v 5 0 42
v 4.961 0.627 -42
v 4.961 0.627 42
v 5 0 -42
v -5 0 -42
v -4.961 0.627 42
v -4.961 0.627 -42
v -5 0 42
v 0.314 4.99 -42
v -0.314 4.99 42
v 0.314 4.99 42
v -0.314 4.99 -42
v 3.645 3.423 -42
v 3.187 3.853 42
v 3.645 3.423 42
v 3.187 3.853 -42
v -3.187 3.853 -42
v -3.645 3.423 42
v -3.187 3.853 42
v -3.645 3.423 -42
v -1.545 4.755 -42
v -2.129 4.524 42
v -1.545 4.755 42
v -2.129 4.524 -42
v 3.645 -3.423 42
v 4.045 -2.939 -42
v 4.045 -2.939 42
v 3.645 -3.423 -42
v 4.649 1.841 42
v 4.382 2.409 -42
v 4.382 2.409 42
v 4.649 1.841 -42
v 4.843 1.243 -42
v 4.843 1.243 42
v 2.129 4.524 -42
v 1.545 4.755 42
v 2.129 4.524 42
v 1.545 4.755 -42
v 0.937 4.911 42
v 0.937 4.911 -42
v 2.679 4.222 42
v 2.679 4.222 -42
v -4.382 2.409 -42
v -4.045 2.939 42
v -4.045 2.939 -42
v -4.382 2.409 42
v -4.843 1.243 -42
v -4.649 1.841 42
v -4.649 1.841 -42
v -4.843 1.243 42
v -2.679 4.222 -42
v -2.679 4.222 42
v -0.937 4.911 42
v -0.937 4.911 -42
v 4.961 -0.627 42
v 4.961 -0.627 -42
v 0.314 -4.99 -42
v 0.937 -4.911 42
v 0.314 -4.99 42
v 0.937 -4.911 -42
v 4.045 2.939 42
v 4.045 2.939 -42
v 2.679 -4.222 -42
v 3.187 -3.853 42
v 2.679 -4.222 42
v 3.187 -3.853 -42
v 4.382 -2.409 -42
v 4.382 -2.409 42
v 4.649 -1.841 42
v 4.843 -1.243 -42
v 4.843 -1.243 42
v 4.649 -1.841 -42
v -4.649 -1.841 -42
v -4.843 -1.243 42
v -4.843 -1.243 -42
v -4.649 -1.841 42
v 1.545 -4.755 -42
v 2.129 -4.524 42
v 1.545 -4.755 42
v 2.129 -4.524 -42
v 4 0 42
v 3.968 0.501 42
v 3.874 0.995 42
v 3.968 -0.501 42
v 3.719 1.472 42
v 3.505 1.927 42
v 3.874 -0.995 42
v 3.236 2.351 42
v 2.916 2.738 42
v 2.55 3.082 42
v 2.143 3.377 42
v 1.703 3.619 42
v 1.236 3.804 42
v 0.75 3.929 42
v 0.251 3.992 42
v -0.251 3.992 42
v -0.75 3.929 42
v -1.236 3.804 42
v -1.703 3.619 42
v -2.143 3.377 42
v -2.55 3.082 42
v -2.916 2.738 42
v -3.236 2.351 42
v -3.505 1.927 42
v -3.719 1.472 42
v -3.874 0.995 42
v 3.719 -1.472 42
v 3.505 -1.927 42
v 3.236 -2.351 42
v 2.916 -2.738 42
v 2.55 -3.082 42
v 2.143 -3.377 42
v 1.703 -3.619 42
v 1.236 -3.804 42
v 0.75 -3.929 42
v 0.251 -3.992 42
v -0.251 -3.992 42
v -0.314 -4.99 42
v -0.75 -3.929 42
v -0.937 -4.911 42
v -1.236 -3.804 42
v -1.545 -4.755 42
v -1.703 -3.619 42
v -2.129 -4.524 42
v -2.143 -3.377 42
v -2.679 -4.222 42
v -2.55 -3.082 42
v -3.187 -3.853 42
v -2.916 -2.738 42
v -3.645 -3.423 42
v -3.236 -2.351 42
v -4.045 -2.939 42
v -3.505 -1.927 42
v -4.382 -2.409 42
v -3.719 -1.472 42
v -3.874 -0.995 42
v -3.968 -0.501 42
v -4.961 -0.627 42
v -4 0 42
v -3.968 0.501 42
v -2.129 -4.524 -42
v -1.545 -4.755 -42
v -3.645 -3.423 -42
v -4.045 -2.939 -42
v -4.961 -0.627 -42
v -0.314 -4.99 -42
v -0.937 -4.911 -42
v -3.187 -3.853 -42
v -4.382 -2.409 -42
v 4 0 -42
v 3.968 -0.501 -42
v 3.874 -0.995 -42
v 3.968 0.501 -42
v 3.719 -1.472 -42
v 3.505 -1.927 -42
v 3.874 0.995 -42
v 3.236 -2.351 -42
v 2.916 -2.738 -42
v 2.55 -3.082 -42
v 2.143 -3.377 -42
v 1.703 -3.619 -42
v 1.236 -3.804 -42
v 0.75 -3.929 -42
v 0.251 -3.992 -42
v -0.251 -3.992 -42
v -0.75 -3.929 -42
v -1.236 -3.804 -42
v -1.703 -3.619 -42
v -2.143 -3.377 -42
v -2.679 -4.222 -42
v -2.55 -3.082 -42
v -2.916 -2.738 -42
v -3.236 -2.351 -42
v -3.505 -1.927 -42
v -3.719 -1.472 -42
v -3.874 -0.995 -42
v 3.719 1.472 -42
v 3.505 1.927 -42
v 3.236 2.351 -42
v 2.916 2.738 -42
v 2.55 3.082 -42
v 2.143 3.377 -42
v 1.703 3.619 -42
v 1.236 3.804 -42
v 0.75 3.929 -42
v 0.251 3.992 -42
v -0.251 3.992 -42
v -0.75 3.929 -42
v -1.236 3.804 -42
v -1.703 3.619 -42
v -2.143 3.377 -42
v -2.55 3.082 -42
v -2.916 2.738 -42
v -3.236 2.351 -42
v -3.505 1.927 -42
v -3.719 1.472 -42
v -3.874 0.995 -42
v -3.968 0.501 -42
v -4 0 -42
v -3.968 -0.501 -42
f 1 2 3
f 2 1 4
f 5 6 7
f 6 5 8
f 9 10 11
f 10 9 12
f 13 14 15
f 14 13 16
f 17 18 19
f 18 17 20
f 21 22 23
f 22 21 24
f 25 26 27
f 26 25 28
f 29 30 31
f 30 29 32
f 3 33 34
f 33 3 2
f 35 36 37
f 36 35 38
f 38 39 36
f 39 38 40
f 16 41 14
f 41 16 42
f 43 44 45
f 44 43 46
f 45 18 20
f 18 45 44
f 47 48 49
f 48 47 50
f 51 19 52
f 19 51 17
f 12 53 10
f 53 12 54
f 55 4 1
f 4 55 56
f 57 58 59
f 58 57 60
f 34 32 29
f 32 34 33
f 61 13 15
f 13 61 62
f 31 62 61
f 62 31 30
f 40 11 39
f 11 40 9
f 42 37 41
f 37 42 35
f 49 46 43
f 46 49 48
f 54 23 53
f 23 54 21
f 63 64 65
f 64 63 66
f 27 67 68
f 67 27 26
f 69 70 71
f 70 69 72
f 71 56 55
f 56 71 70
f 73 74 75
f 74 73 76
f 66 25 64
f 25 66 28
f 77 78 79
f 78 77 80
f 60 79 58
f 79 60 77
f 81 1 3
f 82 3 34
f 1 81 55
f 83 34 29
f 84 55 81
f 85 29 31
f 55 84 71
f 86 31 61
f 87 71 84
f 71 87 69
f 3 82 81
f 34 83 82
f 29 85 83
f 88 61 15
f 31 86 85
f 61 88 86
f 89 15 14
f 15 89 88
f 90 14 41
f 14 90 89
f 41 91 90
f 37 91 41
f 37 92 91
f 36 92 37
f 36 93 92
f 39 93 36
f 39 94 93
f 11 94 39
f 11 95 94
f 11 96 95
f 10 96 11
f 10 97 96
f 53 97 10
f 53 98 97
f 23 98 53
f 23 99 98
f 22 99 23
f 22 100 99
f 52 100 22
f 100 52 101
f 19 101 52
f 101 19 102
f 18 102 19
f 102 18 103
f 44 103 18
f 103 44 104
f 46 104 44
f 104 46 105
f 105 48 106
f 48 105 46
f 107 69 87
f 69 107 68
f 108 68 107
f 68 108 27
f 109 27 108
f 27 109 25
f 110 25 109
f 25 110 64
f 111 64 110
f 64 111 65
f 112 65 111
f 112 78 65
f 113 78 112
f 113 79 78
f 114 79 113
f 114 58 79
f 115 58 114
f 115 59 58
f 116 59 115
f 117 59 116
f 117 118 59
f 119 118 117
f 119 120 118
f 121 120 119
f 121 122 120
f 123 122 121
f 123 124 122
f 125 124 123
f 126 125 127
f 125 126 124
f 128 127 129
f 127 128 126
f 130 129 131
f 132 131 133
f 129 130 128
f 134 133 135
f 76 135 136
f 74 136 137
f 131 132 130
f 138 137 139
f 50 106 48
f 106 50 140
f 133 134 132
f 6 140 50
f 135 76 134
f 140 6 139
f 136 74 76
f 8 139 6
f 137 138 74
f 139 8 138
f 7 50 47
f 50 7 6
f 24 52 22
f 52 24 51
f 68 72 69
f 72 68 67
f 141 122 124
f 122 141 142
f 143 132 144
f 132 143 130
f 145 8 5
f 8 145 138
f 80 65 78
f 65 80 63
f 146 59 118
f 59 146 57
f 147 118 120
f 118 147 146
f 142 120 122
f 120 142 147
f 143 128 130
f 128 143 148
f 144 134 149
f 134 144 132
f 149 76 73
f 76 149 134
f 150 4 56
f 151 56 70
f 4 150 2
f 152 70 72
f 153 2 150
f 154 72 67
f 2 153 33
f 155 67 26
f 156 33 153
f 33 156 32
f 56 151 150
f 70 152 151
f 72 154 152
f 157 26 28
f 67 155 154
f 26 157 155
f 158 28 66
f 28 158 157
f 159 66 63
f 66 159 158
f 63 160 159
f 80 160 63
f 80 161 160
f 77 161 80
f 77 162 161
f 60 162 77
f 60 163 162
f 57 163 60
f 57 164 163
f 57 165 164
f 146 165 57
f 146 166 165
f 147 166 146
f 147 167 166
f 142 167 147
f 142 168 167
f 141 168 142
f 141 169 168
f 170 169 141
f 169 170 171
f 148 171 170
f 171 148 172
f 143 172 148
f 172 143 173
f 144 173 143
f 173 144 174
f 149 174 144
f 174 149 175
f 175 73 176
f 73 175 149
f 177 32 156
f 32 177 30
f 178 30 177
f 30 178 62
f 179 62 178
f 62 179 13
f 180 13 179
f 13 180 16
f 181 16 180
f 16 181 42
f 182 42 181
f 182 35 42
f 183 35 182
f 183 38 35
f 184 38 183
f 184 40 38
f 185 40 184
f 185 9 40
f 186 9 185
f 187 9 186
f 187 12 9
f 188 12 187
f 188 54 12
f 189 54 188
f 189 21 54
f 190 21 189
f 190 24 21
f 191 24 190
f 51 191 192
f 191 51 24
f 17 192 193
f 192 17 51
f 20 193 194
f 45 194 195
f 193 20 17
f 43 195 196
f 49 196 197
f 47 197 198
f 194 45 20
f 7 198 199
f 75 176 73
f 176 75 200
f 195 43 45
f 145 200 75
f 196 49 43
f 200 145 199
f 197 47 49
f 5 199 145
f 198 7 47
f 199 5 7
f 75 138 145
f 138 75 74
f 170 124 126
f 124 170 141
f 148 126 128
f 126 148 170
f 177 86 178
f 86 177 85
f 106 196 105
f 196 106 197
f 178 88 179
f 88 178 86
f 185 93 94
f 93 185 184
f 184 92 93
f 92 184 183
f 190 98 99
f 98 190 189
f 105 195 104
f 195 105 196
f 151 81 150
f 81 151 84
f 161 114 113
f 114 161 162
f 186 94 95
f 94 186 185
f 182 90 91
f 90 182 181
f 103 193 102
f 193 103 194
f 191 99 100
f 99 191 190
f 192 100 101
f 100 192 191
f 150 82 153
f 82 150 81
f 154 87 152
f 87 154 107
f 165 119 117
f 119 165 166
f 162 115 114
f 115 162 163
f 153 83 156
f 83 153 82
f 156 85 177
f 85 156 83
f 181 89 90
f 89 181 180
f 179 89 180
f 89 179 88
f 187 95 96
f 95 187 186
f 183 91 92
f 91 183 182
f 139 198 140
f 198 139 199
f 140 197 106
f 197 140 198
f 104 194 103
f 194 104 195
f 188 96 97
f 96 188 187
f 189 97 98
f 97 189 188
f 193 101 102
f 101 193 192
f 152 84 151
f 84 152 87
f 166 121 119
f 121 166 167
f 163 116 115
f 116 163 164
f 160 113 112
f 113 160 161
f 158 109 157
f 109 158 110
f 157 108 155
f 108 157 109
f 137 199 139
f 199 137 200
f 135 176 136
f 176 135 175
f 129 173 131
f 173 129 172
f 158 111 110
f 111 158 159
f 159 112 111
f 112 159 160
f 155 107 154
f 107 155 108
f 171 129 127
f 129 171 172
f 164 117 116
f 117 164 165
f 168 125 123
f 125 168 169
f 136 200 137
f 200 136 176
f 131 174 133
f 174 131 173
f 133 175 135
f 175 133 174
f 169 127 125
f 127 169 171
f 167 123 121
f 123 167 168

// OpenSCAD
$fn = 50;


difference() {
	union() {
		translate(v = [0, 0, -42.0000000000]) {
			cylinder(h = 84, r = 5.0000000000);
		}
	}
	union() {
		translate(v = [0, 0, -100.0000000000]) {
			cylinder(h = 200, r = 4.0000000000);
		}
	}
}
